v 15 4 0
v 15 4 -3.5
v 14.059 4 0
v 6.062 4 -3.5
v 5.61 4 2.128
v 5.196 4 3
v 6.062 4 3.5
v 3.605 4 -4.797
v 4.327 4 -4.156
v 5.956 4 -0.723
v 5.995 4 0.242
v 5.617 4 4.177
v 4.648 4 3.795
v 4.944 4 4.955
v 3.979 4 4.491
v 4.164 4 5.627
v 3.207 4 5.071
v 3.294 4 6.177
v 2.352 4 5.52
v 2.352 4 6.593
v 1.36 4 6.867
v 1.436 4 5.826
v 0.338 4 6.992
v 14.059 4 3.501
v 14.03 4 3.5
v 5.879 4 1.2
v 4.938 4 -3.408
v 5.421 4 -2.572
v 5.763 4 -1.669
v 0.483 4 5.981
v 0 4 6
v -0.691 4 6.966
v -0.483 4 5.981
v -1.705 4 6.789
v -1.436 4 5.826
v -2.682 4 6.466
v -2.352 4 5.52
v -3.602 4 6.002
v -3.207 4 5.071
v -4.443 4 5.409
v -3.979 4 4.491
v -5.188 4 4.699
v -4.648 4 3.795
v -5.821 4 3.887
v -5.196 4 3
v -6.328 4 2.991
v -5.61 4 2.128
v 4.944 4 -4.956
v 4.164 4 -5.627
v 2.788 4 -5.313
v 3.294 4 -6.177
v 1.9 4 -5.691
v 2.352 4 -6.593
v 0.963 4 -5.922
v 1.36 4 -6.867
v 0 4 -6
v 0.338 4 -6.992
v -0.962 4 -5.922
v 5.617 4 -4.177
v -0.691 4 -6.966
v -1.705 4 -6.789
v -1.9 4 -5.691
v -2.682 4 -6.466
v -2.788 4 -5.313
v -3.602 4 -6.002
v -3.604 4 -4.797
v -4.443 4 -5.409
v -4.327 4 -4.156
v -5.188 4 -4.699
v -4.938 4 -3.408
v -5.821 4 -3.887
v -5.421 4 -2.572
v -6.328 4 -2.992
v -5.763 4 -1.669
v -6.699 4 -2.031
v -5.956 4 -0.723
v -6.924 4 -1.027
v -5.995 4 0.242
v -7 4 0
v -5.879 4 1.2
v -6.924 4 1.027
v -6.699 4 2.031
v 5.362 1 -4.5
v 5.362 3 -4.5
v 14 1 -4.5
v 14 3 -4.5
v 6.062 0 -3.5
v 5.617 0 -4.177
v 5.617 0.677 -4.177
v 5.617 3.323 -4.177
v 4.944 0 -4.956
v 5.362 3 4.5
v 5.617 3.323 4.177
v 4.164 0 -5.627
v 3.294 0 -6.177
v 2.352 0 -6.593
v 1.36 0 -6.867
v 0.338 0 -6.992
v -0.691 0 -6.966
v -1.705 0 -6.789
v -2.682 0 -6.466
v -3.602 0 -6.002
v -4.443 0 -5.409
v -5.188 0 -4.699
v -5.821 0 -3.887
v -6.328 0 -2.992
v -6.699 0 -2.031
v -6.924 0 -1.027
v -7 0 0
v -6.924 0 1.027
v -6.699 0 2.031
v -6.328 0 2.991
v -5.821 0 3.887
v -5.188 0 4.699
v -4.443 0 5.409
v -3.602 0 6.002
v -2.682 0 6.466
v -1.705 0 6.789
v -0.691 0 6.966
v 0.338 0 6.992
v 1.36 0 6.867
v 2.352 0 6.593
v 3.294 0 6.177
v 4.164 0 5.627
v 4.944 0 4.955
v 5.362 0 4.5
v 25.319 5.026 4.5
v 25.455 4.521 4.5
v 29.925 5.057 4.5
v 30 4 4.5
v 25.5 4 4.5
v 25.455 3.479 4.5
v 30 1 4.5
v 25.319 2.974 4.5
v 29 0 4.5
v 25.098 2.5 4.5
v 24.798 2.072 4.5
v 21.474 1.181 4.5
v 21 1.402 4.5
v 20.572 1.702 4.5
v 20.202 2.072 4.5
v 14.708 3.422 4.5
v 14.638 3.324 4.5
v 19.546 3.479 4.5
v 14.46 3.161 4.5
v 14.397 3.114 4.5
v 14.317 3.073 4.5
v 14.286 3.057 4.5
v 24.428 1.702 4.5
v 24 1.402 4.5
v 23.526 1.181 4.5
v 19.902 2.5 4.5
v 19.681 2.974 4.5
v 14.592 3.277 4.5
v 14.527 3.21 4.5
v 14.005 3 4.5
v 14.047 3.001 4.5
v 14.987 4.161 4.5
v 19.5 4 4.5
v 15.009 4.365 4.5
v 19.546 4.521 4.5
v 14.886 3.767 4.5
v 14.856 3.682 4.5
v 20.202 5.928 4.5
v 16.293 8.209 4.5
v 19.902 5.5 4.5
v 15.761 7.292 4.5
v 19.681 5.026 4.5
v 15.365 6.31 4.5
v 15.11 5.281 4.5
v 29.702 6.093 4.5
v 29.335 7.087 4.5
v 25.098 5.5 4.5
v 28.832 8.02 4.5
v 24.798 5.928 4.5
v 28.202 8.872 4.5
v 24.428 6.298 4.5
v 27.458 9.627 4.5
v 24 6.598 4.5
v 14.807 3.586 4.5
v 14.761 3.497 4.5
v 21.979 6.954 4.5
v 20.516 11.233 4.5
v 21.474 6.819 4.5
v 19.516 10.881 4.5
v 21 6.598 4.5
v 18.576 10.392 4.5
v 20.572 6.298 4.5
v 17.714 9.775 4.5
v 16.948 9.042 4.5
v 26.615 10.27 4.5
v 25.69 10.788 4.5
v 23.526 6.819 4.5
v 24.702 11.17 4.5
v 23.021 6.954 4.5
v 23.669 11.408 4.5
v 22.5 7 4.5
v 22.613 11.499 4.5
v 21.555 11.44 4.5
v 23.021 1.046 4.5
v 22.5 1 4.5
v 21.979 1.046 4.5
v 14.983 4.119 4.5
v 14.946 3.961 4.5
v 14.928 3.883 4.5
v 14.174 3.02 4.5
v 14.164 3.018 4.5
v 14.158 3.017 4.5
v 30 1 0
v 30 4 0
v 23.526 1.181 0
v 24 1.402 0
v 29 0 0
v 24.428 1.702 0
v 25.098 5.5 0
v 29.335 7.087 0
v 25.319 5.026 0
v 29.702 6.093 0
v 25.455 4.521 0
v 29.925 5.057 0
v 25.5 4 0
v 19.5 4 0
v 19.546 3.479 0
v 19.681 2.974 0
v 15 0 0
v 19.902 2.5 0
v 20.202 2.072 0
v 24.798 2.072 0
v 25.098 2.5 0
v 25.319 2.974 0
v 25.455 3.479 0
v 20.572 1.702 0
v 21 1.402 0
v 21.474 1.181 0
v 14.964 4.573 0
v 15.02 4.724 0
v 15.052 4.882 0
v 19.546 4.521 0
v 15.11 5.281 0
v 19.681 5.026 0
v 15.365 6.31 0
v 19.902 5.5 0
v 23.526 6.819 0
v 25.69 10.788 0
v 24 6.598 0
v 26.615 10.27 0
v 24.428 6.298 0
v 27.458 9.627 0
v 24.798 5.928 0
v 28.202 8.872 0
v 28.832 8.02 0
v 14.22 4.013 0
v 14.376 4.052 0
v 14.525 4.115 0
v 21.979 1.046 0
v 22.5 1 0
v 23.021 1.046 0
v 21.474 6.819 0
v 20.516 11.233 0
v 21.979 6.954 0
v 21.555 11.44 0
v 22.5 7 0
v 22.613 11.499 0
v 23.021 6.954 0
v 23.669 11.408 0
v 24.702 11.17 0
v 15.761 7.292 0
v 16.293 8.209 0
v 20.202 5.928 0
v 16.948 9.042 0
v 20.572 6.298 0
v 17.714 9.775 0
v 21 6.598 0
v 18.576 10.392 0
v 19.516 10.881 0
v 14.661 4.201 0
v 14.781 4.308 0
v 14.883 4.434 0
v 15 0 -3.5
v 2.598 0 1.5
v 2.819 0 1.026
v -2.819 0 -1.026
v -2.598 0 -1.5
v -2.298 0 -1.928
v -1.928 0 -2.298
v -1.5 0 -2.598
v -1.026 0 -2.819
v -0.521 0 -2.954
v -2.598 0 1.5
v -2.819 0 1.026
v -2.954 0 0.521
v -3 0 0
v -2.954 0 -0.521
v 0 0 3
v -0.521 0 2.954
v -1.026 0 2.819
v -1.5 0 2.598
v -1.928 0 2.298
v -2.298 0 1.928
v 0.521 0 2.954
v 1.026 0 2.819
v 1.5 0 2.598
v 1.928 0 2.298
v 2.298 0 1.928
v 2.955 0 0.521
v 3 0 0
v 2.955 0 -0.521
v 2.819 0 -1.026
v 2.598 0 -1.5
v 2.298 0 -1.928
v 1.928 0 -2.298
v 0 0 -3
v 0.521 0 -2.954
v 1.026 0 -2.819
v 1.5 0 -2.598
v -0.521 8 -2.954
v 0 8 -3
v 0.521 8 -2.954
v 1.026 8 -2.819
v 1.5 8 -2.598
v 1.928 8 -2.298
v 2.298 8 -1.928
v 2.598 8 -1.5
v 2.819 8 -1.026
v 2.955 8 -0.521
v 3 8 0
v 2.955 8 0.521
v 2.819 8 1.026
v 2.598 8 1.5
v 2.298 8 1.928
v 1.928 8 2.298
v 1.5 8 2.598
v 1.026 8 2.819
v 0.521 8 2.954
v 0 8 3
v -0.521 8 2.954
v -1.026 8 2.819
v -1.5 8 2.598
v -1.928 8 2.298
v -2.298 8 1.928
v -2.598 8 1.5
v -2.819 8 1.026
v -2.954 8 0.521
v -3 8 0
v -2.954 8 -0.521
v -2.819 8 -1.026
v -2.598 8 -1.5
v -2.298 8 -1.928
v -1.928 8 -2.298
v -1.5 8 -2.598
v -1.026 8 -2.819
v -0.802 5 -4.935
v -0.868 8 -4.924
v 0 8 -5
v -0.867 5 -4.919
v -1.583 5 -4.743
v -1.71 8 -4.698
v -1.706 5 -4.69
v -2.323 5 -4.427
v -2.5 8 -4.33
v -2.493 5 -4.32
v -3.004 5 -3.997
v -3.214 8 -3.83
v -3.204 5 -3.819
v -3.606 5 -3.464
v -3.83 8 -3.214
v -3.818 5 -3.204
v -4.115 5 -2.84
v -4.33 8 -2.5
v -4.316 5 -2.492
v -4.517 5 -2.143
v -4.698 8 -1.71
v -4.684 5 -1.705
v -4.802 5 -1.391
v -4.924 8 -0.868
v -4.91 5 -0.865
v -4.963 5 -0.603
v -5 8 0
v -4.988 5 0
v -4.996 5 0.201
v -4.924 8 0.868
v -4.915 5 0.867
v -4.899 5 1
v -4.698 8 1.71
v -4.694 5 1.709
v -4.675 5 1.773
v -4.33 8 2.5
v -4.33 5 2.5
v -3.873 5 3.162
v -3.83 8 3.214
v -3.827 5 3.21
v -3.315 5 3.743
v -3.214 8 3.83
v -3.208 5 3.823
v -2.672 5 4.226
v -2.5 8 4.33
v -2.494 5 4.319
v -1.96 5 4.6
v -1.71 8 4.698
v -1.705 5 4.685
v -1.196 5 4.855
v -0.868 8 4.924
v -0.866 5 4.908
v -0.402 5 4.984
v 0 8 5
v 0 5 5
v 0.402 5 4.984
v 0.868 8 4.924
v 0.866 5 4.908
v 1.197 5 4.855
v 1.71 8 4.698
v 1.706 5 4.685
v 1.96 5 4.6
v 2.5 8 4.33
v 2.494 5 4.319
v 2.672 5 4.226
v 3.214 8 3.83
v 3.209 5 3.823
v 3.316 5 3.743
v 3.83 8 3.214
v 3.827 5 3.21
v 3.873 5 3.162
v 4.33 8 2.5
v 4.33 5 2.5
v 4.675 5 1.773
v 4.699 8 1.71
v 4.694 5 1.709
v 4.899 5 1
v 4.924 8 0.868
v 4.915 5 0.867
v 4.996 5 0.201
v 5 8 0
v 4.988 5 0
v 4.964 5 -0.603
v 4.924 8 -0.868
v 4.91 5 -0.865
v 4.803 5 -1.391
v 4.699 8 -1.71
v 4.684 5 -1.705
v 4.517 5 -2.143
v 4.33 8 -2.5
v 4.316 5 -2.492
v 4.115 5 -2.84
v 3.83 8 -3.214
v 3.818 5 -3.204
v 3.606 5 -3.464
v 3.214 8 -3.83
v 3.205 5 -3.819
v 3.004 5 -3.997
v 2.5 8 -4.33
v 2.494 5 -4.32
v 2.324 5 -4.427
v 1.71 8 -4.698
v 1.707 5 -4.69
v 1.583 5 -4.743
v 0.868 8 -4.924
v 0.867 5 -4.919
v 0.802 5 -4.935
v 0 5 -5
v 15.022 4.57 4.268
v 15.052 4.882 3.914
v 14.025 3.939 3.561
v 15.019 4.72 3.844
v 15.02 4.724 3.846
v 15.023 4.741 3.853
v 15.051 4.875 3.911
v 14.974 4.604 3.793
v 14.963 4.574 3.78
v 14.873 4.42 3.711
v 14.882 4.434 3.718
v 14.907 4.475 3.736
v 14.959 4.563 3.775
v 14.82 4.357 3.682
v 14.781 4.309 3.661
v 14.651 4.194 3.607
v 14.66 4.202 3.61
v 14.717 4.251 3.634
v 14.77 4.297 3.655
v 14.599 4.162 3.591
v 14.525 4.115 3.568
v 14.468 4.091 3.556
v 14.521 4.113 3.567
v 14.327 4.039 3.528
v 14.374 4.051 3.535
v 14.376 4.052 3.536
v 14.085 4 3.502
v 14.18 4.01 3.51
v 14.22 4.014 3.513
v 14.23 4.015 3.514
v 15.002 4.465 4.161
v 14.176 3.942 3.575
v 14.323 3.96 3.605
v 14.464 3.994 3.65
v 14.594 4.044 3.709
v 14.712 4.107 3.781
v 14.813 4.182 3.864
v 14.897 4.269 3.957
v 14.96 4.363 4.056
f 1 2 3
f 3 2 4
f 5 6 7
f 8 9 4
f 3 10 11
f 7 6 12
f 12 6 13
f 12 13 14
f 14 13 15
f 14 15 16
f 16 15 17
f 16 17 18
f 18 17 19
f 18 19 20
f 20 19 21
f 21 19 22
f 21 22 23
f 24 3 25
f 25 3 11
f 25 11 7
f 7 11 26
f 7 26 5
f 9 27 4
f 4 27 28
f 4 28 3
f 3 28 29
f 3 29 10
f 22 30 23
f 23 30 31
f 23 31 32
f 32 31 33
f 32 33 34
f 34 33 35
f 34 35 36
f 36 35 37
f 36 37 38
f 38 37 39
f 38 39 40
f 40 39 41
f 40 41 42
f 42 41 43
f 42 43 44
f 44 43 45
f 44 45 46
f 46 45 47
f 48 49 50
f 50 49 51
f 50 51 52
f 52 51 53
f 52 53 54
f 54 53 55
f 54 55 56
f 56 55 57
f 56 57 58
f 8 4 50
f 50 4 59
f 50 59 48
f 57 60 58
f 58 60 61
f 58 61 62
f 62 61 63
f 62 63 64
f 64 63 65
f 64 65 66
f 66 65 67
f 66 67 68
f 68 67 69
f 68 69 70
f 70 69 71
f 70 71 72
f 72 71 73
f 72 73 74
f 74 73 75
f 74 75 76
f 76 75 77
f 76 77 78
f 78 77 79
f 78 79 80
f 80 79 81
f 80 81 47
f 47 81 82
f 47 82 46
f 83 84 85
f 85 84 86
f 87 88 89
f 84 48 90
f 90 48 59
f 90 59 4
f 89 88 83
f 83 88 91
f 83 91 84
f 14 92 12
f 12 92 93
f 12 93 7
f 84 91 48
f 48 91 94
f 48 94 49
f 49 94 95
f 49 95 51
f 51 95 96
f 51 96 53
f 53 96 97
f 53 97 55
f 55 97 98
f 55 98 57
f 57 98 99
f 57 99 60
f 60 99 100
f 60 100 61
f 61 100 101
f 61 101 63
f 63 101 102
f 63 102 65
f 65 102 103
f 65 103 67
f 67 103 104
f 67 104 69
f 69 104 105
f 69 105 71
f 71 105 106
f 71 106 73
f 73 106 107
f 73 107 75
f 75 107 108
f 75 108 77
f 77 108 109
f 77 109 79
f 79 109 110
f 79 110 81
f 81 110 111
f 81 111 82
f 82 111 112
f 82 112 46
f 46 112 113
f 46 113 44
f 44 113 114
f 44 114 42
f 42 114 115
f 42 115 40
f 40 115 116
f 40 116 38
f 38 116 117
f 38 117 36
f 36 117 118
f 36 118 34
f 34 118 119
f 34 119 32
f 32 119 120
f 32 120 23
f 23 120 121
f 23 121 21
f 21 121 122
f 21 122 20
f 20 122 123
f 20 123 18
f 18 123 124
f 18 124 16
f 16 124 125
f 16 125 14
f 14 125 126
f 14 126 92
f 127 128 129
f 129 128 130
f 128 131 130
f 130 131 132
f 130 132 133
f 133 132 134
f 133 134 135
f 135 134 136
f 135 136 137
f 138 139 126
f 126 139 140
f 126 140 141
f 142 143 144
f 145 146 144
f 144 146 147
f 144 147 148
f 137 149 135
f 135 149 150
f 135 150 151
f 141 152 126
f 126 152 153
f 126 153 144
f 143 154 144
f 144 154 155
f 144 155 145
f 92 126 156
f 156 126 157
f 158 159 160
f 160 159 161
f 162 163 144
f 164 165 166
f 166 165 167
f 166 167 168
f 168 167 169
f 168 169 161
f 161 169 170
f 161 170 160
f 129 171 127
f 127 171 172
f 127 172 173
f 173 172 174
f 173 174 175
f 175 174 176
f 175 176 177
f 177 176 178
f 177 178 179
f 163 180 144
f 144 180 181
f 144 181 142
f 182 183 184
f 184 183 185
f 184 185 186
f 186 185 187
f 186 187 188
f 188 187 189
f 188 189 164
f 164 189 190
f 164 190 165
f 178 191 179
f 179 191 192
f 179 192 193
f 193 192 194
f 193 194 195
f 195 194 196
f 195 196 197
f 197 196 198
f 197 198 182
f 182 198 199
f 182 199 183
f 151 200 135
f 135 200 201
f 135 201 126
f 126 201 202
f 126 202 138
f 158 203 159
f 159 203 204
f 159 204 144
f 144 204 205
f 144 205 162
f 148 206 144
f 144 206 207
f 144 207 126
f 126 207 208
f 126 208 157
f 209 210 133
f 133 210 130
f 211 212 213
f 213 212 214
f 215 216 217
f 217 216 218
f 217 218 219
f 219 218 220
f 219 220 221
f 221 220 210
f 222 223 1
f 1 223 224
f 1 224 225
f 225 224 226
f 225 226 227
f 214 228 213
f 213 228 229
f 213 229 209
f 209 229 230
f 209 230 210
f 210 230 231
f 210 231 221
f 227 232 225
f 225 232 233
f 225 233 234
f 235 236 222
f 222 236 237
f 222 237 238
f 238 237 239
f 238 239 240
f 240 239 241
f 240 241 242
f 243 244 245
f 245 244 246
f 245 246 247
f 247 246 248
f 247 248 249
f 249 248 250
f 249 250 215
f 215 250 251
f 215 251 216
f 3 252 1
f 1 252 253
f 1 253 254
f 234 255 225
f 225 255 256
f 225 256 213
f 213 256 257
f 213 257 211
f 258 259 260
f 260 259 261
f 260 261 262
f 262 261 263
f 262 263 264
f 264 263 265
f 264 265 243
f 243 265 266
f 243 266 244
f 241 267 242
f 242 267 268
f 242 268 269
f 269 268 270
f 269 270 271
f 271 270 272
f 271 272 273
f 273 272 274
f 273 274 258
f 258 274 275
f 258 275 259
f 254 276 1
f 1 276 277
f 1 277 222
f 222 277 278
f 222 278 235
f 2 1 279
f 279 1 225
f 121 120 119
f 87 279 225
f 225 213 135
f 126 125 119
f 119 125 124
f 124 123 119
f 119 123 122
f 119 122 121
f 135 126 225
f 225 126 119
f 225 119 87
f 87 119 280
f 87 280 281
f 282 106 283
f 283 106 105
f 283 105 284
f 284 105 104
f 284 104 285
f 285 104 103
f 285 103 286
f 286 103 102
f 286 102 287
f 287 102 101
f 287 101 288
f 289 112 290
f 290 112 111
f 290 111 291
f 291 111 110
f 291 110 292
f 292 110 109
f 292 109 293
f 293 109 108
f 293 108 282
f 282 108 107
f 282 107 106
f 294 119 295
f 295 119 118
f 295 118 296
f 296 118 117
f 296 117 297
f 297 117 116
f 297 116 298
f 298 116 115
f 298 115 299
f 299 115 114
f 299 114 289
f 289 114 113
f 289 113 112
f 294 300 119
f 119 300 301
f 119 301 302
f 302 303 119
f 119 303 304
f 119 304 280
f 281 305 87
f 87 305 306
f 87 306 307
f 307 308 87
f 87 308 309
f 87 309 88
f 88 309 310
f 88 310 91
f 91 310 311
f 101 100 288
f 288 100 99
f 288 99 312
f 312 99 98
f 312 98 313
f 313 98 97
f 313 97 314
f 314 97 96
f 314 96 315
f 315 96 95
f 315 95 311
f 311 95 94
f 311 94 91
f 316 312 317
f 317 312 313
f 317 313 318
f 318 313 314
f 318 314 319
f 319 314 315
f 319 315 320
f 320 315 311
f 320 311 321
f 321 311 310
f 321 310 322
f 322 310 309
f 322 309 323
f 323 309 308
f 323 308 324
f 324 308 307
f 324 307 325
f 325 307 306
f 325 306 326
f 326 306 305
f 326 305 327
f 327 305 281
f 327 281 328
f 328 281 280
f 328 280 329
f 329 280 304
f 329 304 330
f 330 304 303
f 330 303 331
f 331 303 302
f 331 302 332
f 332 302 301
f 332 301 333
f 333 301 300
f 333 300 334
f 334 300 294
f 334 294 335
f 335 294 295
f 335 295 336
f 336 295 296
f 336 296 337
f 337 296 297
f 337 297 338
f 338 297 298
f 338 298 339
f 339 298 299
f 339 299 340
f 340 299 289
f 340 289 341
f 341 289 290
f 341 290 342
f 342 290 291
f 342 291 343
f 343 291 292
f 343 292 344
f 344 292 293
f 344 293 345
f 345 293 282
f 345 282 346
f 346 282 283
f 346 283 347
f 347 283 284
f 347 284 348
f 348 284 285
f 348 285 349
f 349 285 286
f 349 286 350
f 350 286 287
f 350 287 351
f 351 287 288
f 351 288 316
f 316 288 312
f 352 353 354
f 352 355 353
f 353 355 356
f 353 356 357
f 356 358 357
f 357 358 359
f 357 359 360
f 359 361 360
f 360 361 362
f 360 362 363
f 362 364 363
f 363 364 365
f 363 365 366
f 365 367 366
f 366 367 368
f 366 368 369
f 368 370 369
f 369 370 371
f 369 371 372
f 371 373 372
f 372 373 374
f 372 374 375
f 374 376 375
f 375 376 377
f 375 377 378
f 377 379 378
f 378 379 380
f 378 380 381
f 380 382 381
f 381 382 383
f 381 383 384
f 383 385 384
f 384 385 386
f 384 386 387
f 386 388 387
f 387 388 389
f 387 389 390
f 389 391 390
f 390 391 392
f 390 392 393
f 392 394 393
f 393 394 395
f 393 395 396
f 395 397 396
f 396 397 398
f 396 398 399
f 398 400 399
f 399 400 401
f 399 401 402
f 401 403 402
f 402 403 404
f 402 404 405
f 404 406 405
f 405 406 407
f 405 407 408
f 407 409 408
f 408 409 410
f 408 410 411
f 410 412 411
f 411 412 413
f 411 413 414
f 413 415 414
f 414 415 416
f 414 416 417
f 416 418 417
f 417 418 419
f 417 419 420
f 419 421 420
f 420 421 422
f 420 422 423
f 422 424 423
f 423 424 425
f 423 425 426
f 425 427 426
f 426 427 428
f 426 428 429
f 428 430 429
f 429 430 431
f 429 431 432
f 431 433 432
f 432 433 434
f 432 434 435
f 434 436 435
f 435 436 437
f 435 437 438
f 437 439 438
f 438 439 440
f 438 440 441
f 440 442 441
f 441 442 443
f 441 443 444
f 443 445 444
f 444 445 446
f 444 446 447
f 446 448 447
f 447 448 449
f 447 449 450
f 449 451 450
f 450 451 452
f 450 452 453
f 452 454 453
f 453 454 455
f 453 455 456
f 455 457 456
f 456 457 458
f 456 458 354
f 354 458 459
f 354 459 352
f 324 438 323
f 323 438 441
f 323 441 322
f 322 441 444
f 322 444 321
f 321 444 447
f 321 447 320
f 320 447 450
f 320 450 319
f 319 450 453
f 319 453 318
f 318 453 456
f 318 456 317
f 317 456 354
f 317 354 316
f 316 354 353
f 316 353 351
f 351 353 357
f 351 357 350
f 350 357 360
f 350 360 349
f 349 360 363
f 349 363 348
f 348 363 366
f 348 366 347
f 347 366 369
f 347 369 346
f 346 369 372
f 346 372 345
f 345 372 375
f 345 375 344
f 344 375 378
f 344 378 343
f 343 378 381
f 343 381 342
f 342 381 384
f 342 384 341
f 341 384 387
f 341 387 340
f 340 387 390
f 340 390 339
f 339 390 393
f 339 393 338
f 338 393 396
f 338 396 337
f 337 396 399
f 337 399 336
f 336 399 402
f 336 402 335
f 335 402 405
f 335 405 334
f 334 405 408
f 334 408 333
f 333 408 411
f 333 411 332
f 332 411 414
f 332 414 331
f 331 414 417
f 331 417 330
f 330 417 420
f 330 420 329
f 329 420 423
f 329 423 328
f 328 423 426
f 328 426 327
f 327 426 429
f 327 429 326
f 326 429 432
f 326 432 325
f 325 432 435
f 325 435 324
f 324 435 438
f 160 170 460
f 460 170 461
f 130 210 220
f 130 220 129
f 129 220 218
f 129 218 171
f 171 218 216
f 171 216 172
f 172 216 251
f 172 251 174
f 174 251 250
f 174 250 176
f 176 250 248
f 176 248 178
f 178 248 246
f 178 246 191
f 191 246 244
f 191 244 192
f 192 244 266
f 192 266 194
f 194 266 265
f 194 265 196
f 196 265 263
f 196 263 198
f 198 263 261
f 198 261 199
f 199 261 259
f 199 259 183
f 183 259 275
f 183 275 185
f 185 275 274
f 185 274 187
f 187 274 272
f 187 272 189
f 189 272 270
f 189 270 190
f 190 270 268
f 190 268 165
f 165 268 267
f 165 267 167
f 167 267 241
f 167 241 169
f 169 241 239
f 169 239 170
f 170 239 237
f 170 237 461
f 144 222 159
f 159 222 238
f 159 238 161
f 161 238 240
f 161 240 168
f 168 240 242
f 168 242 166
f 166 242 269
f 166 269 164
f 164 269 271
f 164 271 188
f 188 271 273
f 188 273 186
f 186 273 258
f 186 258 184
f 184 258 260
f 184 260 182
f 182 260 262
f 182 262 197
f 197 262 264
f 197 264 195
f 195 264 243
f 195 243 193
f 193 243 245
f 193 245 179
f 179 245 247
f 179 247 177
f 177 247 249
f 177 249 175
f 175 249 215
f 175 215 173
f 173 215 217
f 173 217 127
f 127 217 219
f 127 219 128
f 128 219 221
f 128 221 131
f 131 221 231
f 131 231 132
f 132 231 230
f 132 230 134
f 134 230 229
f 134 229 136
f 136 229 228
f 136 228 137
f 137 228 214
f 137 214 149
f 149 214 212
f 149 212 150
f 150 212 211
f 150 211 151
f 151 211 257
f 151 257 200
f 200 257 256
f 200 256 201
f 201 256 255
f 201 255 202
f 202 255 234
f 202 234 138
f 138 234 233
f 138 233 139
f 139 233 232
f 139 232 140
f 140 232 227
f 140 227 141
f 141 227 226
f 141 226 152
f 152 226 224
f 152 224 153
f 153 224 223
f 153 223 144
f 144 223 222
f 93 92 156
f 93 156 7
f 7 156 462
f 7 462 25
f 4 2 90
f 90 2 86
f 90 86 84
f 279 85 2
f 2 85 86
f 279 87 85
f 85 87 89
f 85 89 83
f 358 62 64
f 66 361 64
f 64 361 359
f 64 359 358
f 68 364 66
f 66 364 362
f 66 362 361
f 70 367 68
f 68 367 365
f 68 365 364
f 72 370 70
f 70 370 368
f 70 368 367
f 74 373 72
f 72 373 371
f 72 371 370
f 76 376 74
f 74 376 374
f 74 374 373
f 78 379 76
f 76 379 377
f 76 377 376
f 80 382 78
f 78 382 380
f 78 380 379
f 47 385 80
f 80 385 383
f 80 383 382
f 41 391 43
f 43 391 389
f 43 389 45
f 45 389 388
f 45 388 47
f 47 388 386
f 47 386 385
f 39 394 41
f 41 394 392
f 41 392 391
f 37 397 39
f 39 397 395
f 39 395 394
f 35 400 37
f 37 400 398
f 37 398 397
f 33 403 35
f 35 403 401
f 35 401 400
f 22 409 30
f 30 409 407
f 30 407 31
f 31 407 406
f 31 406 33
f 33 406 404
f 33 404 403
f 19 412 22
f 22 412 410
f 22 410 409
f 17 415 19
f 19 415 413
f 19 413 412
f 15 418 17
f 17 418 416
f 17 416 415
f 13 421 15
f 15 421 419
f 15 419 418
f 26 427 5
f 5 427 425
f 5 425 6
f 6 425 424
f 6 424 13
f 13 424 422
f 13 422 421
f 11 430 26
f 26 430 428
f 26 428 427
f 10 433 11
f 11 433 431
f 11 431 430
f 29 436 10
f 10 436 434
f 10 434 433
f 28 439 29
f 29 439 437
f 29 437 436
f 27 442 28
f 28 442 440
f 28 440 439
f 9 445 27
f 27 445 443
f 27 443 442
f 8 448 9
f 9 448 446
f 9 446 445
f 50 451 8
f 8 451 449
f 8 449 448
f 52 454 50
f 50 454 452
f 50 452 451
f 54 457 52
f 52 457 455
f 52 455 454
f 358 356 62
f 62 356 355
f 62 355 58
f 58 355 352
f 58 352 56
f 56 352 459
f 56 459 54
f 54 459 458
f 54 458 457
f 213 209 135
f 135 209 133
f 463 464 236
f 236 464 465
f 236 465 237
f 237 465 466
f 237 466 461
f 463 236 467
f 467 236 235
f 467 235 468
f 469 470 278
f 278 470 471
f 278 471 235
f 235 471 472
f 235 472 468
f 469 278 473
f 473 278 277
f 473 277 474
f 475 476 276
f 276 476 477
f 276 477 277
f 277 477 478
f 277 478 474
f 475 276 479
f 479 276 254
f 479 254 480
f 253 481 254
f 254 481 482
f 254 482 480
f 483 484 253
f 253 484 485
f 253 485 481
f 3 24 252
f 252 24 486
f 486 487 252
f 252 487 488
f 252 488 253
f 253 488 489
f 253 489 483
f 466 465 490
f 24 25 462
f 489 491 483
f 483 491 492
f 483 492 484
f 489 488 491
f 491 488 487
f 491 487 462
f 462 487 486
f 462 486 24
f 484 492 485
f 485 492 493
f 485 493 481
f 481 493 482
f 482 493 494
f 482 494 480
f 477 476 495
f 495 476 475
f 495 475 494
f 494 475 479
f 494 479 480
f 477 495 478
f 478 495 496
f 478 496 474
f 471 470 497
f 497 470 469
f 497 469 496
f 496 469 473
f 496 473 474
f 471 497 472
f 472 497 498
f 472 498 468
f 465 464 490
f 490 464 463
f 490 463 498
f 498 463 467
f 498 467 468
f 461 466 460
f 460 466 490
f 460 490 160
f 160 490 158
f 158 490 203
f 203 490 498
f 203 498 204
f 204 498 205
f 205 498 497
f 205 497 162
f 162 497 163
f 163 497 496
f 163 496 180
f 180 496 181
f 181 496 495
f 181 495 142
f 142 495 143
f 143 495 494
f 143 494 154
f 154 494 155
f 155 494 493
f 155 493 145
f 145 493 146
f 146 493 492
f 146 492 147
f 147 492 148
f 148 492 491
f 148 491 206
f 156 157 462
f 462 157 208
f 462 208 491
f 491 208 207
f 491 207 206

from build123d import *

# Parameters (mm, degrees)
SKETCH1_R           = 5
BOSS_EXTRUDE1_DEPTH = 4
SKETCH1_3_R         = 5
SKETCH1_3_R_2       = 3
BOSS_EXTRUDE2_DEPTH = 8
SKETCH2_R           = 3
BOSS_EXTRUDE3_DEPTH = 4.5
CUT_EXTRUDE1_START  = -4.5
SKETCH3_R           = 3
CUT_EXTRUDE1_DEPTH  = 4.5
CHAMFER1_SIZE       = 1
FILLET1_R           = 1


with BuildPart() as part:
    # Sketch1 → Boss-Extrude1 (new body)
    with BuildSketch(Plane(origin=(0, 0, 0), x_dir=(1, 0, 0), z_dir=(0, 1, 0))):
        with BuildLine():
            Line((15, 0), (15, 4.5))
            Line((15, 4.5), (5.361902647, 4.5))
            ThreePointArc((5.361902647, 4.5), (-7, 0), (5.361902647, -4.5))
            Line((5.361902647, -4.5), (30, -4.5))
            Line((30, -4.5), (30, 0))
            Line((30, 0), (15, 0))
        make_face()
        Circle(SKETCH1_R, mode=Mode.SUBTRACT)
    extrude(amount=BOSS_EXTRUDE1_DEPTH)

    # Sketch1<3> → Boss-Extrude2 (add)
    with BuildSketch(Plane(origin=(0, 0, 0), x_dir=(1, 0, 0), z_dir=(0, 1, 0))):
        Circle(SKETCH1_3_R)
        Circle(SKETCH1_3_R_2, mode=Mode.SUBTRACT)
    extrude(amount=BOSS_EXTRUDE2_DEPTH)

    # Sketch2 → Boss-Extrude3 (add)
    with BuildSketch(Plane.XY):
        with BuildLine():
            Line((15, 4), (15, 0))
            Line((15, 0), (30, 0))
            Line((30, 0), (30, 4))
            ThreePointArc((30, 4), (22.5, 11.5), (15, 4))
        make_face()
        with Locations((22.5, 4)):
            Circle(SKETCH2_R, mode=Mode.SUBTRACT)
    extrude(amount=BOSS_EXTRUDE3_DEPTH)

    # Sketch3 → Cut-Extrude1 (cut)
    with BuildSketch(Plane.XY.offset(4.5).offset(CUT_EXTRUDE1_START)):
        with Locations((22.5, 4)):
            Circle(SKETCH3_R)
    extrude(amount=CUT_EXTRUDE1_DEPTH, mode=Mode.SUBTRACT)

    # Chamfer1
    chamfer1_edges = [part.edges().sort_by_distance(p)[0] for p in [
        (-5, 4, 0),
        (30, 0, 2.25),
        (10.180951324, 4, 4.5),
        (10.180951324, 0, -4.5),
        (10.180951324, 4, -4.5),
        (15, 2, -4.5),
    ]]
    chamfer(chamfer1_edges, length=CHAMFER1_SIZE)

    # Fillet1
    fillet1_edges = [part.edges().sort_by_distance(p)[0] for p in [
        (15.016722764, 3.499438512, 4.000561488),
        (15, 4, 1.75),
    ]]
    fillet(fillet1_edges, radius=FILLET1_R)


solid = part.part
